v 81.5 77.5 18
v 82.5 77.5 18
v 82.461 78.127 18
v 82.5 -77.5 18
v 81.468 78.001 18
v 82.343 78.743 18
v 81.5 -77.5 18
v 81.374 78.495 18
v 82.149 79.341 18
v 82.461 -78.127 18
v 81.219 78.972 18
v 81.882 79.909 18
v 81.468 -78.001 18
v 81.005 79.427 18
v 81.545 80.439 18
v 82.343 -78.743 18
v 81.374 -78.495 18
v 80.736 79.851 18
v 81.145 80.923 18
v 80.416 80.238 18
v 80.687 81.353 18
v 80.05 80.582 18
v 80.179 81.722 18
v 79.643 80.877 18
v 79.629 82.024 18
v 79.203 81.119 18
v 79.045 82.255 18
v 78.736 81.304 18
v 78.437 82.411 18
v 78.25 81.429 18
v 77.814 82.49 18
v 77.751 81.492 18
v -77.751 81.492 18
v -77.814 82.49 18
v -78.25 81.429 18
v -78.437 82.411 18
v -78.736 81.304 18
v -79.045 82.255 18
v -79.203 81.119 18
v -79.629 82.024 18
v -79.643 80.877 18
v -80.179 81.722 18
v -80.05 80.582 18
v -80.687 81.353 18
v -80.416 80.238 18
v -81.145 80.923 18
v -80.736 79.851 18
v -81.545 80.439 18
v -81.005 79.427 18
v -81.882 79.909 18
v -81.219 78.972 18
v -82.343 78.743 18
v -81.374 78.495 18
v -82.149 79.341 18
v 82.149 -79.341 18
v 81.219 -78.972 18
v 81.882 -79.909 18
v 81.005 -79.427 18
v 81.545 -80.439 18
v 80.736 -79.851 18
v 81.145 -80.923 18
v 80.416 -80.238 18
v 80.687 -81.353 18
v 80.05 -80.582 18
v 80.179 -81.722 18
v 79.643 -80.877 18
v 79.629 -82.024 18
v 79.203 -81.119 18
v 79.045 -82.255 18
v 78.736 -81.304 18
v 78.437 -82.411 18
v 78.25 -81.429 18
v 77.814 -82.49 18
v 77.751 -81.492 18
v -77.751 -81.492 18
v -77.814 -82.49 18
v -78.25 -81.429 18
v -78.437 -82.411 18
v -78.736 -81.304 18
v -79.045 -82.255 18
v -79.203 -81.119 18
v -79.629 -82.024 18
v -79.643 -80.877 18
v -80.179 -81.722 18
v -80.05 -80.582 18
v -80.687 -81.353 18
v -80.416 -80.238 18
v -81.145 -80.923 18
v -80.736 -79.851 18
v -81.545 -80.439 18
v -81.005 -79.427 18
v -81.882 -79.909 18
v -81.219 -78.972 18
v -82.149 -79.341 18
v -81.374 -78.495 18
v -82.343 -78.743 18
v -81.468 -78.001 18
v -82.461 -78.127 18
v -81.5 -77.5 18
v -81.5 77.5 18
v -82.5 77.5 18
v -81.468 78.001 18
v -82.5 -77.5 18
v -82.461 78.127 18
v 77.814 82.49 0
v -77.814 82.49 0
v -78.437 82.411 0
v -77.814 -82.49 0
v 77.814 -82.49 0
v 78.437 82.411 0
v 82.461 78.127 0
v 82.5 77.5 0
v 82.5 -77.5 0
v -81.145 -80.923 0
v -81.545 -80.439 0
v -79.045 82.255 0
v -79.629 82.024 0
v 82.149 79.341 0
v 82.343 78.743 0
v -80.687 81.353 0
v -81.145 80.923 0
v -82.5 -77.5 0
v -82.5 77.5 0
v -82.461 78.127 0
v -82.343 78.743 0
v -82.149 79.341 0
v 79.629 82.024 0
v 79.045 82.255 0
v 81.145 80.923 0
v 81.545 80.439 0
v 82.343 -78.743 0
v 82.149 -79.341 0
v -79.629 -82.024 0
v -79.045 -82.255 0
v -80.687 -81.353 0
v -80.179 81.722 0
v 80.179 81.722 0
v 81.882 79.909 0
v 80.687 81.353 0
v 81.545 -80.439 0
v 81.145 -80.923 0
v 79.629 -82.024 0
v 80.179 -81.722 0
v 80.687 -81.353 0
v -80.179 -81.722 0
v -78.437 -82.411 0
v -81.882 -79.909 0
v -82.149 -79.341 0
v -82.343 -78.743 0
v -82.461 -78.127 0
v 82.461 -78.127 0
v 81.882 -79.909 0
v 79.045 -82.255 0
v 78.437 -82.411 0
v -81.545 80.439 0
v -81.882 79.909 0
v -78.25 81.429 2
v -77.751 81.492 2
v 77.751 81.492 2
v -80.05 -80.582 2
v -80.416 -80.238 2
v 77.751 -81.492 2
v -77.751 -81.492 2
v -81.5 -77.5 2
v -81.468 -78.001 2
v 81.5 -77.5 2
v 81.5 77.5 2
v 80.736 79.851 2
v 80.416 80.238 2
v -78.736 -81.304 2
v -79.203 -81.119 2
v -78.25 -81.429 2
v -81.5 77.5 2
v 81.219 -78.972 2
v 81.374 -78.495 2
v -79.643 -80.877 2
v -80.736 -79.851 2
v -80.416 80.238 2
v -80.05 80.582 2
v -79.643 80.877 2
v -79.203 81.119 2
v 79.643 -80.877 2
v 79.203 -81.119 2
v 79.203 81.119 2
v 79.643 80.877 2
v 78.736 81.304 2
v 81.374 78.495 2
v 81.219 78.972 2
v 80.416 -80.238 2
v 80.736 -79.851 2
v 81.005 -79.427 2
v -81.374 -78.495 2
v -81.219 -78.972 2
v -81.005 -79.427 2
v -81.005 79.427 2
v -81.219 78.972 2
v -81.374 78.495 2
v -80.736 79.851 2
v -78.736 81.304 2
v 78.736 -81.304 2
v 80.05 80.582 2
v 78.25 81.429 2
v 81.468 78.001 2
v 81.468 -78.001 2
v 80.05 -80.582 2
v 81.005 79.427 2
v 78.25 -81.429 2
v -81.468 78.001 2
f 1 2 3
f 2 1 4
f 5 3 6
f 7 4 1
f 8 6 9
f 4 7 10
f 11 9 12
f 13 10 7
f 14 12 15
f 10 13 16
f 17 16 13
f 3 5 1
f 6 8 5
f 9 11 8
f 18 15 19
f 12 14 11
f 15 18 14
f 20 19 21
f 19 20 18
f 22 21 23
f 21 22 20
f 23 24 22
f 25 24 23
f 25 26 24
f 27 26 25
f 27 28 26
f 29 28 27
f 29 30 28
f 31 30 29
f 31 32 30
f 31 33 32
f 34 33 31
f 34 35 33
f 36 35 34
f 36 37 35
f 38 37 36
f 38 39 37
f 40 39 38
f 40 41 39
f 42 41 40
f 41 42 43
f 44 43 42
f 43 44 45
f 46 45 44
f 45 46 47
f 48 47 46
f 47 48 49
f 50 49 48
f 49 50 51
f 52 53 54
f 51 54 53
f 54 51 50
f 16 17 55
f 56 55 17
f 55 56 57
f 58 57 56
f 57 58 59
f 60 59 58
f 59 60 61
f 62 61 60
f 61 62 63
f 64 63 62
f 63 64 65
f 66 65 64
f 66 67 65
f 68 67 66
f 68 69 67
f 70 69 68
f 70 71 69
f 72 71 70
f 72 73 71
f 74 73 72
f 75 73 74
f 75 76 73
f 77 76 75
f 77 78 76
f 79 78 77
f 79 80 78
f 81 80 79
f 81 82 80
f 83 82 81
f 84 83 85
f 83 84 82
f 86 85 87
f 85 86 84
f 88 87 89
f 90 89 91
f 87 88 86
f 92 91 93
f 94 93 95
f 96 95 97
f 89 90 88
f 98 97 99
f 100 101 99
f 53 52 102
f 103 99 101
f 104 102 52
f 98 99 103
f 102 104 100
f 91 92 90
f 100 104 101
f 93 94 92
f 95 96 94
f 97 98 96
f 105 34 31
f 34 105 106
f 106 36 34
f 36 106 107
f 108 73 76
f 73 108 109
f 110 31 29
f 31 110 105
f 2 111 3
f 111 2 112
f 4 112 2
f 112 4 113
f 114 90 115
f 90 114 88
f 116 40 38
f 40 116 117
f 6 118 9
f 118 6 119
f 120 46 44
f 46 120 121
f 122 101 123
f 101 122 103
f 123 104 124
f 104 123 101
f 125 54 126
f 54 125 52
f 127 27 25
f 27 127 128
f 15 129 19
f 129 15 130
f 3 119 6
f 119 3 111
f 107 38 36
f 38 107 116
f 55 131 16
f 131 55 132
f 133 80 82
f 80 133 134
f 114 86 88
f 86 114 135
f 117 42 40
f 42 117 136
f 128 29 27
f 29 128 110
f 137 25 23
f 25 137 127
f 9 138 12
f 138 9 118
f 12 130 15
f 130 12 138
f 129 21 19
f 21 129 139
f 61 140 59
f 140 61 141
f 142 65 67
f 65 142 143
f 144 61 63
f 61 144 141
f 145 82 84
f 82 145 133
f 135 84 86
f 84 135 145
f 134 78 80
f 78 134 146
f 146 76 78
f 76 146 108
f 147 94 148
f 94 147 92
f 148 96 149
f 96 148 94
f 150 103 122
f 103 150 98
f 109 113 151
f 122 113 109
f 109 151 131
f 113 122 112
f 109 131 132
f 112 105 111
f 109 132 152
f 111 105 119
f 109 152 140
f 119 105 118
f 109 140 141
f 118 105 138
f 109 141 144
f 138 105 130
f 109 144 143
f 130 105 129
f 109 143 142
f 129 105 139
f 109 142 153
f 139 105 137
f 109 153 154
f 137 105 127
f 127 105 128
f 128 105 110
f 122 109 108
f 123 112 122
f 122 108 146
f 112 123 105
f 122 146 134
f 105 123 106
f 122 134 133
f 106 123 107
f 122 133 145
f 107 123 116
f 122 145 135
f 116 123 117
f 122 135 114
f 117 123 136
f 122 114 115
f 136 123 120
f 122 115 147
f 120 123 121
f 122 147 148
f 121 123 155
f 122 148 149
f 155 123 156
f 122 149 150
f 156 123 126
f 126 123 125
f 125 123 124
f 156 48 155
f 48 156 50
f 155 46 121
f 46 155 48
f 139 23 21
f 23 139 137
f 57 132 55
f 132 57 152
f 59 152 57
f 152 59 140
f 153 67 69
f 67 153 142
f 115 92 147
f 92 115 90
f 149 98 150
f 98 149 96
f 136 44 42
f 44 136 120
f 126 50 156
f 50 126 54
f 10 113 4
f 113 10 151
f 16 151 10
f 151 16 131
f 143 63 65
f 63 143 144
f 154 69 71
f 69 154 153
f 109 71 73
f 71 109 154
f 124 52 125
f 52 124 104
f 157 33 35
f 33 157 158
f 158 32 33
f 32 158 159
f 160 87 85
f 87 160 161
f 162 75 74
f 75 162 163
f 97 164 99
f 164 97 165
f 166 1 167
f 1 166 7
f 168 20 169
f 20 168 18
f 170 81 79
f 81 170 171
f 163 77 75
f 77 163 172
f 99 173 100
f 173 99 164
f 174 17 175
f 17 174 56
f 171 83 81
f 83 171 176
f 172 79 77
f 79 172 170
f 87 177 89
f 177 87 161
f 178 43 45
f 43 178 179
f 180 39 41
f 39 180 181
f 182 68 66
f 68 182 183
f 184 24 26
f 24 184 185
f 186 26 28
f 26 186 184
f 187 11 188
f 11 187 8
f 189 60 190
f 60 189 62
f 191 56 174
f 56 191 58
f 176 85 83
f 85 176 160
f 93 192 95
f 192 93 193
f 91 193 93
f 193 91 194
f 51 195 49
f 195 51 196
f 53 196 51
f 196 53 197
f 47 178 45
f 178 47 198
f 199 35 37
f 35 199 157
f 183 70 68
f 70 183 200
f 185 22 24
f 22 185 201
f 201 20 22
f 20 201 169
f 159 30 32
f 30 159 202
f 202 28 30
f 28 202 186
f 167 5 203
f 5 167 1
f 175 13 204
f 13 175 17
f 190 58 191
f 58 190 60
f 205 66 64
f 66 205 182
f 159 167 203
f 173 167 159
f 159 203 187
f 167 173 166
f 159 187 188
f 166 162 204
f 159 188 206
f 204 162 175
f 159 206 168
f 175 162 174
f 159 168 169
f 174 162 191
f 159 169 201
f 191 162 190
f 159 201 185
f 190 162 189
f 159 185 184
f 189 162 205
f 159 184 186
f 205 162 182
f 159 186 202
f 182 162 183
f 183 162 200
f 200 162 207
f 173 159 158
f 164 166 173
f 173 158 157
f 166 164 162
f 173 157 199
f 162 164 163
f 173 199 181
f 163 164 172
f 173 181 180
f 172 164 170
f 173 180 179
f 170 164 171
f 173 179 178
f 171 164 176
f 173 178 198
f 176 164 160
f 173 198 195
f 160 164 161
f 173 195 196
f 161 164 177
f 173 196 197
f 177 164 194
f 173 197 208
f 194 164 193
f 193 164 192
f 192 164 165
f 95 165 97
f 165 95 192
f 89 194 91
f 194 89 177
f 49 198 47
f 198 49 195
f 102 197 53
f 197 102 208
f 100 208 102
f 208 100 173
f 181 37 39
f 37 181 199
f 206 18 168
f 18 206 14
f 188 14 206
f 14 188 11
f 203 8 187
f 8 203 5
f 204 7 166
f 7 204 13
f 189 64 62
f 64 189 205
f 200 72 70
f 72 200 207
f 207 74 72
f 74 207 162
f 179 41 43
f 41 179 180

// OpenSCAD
$fn = 50;


difference() {
	union() {
		hull() {
			translate(v = [-77.5000000000, 77.5000000000, 0]) {
				cylinder(h = 18, r = 5);
			}
			translate(v = [77.5000000000, 77.5000000000, 0]) {
				cylinder(h = 18, r = 5);
			}
			translate(v = [-77.5000000000, -77.5000000000, 0]) {
				cylinder(h = 18, r = 5);
			}
			translate(v = [77.5000000000, -77.5000000000, 0]) {
				cylinder(h = 18, r = 5);
			}
		}
	}
	union() {
		translate(v = [0, 0, 2]) {
			hull() {
				translate(v = [-77.5000000000, 77.5000000000, 0]) {
					cylinder(h = 16, r = 4);
				}
				translate(v = [77.5000000000, 77.5000000000, 0]) {
					cylinder(h = 16, r = 4);
				}
				translate(v = [-77.5000000000, -77.5000000000, 0]) {
					cylinder(h = 16, r = 4);
				}
				translate(v = [77.5000000000, -77.5000000000, 0]) {
					cylinder(h = 16, r = 4);
				}
			}
		}
	}
}
